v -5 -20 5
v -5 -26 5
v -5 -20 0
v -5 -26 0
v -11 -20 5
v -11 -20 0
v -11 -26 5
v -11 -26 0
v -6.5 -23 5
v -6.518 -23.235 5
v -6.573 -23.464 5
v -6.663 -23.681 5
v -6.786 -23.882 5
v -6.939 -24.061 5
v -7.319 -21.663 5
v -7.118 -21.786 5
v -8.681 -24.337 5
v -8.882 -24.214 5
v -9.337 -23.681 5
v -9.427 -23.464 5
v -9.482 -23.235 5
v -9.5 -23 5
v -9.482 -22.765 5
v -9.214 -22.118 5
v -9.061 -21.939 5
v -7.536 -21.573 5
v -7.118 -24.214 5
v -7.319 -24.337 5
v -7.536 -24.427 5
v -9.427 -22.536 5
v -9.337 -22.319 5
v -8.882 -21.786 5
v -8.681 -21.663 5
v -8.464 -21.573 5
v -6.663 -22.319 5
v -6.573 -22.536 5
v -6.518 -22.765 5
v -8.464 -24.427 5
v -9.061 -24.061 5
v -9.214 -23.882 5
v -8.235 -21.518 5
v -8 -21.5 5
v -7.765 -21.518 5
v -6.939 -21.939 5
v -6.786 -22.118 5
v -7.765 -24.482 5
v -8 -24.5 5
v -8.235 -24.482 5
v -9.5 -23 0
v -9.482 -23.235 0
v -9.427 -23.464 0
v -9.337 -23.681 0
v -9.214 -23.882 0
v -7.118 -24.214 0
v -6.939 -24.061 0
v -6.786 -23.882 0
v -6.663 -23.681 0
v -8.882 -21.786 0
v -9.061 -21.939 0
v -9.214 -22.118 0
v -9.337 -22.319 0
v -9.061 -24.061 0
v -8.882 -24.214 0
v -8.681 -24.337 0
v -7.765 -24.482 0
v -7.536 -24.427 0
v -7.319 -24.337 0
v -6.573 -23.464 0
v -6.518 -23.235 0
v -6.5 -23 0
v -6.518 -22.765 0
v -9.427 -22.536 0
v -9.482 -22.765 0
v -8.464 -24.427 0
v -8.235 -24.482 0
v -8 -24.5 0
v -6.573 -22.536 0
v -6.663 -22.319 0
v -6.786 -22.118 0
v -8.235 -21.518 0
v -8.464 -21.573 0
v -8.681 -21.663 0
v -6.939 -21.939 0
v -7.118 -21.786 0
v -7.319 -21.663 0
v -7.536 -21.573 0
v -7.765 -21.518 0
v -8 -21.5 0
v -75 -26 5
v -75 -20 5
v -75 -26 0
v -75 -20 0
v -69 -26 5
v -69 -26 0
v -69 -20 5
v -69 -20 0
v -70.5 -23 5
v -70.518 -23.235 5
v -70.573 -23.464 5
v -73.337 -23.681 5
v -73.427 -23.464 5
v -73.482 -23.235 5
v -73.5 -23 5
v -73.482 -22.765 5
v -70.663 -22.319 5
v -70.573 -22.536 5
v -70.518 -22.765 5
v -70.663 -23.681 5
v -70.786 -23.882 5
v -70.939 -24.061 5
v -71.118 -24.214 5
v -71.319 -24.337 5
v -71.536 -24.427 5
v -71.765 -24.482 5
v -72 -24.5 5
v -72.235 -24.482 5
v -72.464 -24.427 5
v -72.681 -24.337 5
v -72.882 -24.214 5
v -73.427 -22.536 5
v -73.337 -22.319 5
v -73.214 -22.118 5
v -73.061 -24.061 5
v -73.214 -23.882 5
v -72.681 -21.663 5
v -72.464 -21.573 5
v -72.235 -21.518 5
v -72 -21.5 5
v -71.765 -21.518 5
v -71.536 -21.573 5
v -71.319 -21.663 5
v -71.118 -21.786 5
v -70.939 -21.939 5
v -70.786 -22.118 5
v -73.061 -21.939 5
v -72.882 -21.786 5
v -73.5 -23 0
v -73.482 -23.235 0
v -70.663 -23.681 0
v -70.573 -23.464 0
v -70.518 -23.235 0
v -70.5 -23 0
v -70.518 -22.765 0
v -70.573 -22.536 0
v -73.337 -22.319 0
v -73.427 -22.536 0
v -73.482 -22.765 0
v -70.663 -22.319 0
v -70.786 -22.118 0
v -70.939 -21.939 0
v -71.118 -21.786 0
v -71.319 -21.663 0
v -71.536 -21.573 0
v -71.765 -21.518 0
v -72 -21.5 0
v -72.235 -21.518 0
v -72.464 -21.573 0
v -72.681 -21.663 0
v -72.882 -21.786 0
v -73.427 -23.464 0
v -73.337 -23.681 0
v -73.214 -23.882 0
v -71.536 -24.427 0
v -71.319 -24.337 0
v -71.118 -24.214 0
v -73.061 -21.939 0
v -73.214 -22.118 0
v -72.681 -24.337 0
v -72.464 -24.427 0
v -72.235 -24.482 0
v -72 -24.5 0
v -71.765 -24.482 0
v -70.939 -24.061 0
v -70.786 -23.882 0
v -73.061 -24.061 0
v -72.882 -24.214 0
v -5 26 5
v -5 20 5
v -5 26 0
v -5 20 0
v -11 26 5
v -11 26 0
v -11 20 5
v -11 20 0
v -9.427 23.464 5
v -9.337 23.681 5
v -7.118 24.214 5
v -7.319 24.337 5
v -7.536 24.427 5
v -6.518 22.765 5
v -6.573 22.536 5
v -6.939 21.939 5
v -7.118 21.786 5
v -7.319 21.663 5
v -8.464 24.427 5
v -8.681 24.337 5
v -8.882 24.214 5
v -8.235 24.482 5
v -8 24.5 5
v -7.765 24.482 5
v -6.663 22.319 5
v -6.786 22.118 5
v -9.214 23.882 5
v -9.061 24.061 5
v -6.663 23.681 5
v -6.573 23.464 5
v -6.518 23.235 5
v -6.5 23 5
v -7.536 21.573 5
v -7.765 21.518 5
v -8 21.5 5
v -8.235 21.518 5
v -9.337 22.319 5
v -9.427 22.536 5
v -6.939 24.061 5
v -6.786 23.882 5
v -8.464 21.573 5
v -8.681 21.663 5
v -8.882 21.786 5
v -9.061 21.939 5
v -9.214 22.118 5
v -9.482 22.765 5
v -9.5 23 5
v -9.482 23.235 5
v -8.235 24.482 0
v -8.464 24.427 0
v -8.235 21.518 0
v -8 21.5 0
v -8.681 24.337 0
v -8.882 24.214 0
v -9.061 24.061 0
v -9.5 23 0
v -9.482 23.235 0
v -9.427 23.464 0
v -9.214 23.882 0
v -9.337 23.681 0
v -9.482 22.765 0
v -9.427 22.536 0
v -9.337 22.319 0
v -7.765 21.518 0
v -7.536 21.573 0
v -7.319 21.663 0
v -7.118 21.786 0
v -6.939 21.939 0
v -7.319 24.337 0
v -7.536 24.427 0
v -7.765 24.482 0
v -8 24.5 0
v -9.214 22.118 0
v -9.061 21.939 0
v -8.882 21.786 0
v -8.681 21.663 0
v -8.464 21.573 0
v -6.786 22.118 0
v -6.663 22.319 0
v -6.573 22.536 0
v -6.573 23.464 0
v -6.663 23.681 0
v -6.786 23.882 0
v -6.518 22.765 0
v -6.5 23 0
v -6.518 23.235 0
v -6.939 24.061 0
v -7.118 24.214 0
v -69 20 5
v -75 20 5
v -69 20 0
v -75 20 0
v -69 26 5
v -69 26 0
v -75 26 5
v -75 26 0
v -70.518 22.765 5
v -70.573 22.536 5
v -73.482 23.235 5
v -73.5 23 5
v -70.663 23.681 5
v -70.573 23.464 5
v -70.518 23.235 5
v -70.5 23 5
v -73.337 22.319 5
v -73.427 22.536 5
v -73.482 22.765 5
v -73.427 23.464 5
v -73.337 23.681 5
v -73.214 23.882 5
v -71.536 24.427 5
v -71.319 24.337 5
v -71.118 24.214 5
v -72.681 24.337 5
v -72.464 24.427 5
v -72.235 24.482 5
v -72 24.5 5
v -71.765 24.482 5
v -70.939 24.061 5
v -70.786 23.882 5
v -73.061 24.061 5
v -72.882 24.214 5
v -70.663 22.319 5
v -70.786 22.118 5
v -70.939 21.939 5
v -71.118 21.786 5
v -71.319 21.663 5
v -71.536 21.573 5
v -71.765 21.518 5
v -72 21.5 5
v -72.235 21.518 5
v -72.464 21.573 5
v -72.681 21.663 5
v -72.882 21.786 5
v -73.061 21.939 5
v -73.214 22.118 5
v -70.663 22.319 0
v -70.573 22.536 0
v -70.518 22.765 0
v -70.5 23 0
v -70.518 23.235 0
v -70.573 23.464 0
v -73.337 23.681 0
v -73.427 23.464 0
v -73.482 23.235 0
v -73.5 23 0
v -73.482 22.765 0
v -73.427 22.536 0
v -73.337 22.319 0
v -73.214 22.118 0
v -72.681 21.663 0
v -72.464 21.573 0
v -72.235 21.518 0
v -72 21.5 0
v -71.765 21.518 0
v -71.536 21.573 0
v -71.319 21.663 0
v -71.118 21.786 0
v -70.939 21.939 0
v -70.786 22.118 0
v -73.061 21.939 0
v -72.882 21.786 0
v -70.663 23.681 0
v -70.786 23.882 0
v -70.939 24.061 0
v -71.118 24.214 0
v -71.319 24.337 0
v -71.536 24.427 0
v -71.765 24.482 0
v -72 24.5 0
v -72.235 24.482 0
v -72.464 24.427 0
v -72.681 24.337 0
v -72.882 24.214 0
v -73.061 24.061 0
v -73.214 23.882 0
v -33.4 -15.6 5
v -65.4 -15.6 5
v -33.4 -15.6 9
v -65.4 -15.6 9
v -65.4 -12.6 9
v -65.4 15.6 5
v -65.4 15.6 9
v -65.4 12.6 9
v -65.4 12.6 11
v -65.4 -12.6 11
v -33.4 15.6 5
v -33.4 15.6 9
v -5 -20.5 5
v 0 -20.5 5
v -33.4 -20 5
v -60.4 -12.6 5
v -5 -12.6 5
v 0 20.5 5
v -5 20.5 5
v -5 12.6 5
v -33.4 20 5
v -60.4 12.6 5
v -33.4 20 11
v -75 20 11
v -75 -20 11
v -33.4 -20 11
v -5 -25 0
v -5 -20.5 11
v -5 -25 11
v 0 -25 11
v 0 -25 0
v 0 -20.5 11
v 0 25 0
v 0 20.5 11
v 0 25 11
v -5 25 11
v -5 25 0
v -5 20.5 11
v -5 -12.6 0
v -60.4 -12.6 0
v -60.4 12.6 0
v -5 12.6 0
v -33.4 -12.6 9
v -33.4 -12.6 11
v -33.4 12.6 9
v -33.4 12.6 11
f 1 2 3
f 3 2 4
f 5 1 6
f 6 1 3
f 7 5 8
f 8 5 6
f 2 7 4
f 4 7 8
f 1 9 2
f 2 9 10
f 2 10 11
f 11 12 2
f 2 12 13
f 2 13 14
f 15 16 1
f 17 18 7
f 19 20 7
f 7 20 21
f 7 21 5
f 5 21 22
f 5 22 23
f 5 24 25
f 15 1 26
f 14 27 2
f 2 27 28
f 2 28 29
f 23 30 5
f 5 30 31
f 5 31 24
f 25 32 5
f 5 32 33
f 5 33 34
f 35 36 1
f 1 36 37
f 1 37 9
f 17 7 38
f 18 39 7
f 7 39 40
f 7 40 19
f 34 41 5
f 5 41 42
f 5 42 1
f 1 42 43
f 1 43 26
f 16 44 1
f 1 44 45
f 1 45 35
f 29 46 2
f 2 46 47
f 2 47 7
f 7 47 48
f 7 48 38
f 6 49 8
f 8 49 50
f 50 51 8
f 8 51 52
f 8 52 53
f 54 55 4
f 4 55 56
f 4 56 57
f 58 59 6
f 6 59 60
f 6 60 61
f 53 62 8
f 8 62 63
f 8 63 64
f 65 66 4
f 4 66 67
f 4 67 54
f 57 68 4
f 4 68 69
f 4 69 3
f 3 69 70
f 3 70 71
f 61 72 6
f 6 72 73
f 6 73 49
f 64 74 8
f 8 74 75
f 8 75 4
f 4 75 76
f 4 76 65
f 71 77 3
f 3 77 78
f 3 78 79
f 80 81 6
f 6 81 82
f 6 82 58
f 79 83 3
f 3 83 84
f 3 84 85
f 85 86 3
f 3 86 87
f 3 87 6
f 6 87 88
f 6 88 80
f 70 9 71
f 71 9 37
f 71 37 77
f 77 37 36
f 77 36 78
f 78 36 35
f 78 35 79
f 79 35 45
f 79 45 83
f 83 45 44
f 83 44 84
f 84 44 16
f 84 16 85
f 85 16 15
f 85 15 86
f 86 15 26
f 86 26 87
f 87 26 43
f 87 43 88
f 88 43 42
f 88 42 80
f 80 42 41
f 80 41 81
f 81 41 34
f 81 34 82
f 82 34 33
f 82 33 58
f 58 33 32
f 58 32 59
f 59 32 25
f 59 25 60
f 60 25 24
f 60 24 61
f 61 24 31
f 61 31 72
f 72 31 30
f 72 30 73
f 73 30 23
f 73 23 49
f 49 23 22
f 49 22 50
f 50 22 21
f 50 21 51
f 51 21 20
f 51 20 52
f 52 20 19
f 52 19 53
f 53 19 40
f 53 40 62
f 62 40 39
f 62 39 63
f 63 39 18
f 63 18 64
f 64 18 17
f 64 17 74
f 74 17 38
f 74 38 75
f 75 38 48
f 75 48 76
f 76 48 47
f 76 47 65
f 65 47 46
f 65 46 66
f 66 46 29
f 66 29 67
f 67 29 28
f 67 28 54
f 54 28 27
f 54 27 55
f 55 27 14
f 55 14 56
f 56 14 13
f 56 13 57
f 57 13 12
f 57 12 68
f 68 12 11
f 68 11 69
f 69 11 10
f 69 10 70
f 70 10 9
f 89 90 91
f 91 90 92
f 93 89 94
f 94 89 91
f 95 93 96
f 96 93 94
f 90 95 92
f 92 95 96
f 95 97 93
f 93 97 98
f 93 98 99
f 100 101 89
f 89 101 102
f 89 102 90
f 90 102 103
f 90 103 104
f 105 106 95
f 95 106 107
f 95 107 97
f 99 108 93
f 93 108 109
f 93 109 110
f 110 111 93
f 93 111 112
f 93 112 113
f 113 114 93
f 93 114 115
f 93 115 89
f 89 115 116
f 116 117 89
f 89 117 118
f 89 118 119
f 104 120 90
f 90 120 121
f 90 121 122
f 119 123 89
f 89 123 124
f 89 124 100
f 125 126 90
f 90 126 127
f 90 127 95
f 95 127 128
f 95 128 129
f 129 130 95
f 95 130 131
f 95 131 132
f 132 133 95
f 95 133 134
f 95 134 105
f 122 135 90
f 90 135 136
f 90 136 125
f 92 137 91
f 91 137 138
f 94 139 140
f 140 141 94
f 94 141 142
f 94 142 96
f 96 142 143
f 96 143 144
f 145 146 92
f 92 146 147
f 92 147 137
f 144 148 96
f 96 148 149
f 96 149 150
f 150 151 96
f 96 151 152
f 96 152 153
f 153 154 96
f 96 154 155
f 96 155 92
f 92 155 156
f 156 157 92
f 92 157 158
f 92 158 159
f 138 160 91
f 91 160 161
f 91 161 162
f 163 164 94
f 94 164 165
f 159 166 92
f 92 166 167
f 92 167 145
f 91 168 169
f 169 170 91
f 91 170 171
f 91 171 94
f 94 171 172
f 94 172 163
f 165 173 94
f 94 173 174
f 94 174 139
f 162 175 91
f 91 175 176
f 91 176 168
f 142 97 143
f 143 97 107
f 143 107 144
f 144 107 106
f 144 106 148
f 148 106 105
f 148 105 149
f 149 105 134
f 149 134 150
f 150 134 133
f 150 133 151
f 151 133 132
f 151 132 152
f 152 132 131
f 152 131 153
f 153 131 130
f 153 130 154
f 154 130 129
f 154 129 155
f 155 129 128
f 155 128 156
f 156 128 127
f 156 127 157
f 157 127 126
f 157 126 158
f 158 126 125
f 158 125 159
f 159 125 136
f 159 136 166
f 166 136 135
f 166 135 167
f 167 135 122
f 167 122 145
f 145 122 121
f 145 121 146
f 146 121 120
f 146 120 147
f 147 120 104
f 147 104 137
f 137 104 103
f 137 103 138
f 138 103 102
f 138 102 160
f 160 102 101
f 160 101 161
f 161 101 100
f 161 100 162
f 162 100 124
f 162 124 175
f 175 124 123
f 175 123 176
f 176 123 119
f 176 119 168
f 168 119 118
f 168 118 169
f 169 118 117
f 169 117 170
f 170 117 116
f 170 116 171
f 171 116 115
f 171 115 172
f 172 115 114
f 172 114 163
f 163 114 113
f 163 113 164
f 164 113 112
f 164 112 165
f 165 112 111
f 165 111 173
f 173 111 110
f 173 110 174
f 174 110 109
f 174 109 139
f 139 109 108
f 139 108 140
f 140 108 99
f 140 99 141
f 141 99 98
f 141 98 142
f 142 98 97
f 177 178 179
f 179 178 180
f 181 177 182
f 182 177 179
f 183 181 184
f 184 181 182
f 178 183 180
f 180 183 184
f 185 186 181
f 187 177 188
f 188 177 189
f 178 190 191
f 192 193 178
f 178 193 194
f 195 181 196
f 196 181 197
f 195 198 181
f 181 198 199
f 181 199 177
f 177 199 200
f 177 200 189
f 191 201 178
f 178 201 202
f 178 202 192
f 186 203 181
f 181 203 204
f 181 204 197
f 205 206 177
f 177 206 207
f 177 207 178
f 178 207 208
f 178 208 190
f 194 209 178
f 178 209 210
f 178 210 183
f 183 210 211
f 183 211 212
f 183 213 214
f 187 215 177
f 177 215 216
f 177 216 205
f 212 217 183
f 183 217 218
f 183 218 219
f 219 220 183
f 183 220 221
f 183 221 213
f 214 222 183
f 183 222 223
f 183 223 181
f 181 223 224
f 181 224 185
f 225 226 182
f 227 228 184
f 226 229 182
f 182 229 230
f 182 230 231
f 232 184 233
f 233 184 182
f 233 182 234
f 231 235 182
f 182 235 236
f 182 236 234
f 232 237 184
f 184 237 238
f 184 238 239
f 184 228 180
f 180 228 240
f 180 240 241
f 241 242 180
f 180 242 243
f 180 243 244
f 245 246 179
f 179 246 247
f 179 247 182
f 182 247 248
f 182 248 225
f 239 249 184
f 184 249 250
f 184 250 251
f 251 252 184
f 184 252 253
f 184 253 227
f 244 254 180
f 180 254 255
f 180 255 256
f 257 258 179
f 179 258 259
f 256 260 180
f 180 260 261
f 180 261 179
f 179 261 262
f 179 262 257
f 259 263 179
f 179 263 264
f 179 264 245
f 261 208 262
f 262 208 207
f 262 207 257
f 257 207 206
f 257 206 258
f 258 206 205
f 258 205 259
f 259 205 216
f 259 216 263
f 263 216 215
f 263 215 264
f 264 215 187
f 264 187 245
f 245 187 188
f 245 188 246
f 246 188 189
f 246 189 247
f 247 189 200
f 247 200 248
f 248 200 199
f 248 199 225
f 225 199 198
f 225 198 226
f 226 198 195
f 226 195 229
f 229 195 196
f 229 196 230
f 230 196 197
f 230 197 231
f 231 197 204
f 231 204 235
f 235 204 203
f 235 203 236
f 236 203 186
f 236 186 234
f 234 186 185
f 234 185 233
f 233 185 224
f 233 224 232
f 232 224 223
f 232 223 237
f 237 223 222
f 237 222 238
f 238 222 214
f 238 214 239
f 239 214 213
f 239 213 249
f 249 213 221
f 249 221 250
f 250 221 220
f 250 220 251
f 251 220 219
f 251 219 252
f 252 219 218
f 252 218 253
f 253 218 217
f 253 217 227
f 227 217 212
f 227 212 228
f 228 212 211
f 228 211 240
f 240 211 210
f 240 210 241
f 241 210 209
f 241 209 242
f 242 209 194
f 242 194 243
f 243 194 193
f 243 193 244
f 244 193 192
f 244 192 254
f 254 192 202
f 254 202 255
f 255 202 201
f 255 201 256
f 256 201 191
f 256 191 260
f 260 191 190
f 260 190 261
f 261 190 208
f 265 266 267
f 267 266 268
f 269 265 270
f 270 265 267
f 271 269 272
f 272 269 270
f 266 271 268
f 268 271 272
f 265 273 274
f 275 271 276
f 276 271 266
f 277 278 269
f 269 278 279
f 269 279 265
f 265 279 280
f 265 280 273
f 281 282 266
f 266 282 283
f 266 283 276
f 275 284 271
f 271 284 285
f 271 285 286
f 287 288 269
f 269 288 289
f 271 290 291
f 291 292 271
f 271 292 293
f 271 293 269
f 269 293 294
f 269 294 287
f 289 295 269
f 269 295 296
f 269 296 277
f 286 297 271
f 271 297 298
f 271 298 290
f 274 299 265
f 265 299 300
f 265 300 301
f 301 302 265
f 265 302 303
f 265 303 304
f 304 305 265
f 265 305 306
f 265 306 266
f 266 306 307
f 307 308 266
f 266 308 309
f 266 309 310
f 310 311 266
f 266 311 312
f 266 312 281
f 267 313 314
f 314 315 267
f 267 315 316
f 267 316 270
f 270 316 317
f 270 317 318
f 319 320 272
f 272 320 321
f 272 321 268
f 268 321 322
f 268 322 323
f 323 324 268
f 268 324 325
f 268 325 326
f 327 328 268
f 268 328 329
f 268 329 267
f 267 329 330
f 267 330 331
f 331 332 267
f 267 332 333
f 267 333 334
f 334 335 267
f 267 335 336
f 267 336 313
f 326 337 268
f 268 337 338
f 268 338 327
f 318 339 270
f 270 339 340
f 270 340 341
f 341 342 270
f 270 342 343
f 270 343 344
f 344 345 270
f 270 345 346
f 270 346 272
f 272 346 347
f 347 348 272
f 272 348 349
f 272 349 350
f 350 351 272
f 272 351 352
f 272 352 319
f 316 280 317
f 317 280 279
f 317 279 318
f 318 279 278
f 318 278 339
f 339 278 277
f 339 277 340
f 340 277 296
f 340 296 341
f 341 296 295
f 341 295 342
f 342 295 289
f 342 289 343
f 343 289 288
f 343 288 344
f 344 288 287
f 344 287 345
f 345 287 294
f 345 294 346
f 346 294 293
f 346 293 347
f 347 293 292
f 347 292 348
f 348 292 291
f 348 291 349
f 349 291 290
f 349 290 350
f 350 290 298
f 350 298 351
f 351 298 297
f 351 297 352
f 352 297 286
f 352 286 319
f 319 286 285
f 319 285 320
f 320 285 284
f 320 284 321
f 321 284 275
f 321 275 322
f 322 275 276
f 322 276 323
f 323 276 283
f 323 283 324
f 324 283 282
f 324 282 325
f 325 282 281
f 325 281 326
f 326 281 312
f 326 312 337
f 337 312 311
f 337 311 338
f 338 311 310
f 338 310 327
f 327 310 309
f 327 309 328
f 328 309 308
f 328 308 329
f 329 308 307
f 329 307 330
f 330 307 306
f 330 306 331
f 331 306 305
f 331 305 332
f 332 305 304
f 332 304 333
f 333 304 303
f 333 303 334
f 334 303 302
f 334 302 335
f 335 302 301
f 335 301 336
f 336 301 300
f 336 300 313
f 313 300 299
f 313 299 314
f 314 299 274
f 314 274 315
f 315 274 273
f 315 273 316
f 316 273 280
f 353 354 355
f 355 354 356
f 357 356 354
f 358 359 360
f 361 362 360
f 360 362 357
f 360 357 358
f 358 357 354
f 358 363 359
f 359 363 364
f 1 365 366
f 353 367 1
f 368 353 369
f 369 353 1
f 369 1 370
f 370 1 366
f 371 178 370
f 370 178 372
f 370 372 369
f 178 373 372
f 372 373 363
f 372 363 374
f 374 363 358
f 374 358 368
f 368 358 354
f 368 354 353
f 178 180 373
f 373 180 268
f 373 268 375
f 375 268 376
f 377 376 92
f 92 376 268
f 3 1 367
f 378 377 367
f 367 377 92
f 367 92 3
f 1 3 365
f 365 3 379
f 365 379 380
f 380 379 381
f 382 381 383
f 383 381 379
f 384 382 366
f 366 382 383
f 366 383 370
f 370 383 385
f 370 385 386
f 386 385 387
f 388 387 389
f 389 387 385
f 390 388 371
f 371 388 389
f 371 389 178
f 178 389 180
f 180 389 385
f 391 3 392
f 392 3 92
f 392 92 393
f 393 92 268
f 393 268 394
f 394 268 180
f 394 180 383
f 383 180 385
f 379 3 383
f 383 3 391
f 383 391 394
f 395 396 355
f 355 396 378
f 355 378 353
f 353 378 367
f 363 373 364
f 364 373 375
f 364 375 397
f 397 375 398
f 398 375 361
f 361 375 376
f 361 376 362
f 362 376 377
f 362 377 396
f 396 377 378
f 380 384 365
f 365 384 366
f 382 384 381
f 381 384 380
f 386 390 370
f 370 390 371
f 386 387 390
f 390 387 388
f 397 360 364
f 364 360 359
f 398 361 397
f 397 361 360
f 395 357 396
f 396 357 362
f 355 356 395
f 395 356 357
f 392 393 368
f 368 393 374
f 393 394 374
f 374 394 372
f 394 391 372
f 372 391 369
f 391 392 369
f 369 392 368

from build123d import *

# Parameters (mm, degrees)
BOSS_EXTRUDE1_DEPTH   = 5
SKETCH4_W             = 5
SKETCH4_H             = 4.5
BOSS_EXTRUDE2_DEPTH   = 6
SKETCH5_W             = 3
SKETCH5_H             = 2
BOSS_EXTRUDE3_DEPTH   = 32
SKETCH6_W             = 6
SKETCH6_H             = 6
BOSS_EXTRUDE4_DEPTH   = 5
BOSS_EXTRUDE4_2_DEPTH = 5
BOSS_EXTRUDE4_3_DEPTH = 5
BOSS_EXTRUDE4_4_DEPTH = 5
SKETCH7_R             = 1.5
CUT_EXTRUDE1_DEPTH    = 6
SKETCH8_W             = 55.4
SKETCH8_H             = 25.2
CUT_EXTRUDE2_DEPTH    = 6


with BuildPart() as part:
    # Sketch1 → Boss-Extrude1 (new body)
    with BuildSketch(Plane(origin=(0, 0, 0), x_dir=(0, 1, 0), z_dir=(0, 0, 1))):
        Polygon((-20, 5), (-20, 75), (20, 75), (20, 5), (25, 5), (25, 0), (-25, 0), (-25, 5), align=None)
    extrude(amount=BOSS_EXTRUDE1_DEPTH)

    # Sketch4 → Boss-Extrude2 (add)
    with BuildSketch(Plane.XY.offset(5)):
        Polygon((-75, 20), (-75, -20), (-33.4, -20), (-33.4, -15.6), (-65.4, -15.6), (-65.4, 15.6), (-33.4, 15.6), (-33.4, 20), align=None)
        with Locations((-2.5, 22.75)):
            Rectangle(SKETCH4_W, SKETCH4_H)
        with Locations((-2.5, -22.75)):
            Rectangle(SKETCH4_W, SKETCH4_H)
    extrude(amount=BOSS_EXTRUDE2_DEPTH)

    # Sketch5 → Boss-Extrude3 (add)
    with BuildSketch(Plane.YZ.offset(-65.4)):
        with Locations((-14.1, 10)):
            Rectangle(SKETCH5_W, SKETCH5_H)
        with Locations((14.1, 10)):
            Rectangle(SKETCH5_W, SKETCH5_H)
    extrude(amount=BOSS_EXTRUDE3_DEPTH)

    # Sketch8 → Cut-Extrude2 (cut, through all)
    with BuildSketch(Plane.XY.offset(5)):
        with Locations((-32.7, 0)):
            Rectangle(SKETCH8_W, SKETCH8_H)
    extrude(amount=-CUT_EXTRUDE2_DEPTH, mode=Mode.SUBTRACT)


with BuildPart() as body_2:
    # Sketch6 → Boss-Extrude4 (new body)
    with BuildSketch(Plane(origin=(0, 0, 0), x_dir=(1, 0, 0), z_dir=(0, 0, -1))):
        with Locations((-8, 23)):
            Rectangle(SKETCH6_W, SKETCH6_H)
    extrude(amount=-BOSS_EXTRUDE4_DEPTH)


with BuildPart() as body_3:
    # Sketch6 → Boss-Extrude4 2 (new body)
    with BuildSketch(Plane(origin=(0, 0, 0), x_dir=(1, 0, 0), z_dir=(0, 0, -1))):
        with Locations((-72, 23)):
            Rectangle(SKETCH6_W, SKETCH6_H)
    extrude(amount=-BOSS_EXTRUDE4_2_DEPTH)


with BuildPart() as body_4:
    # Sketch6 → Boss-Extrude4 3 (new body)
    with BuildSketch(Plane(origin=(0, 0, 0), x_dir=(1, 0, 0), z_dir=(0, 0, -1))):
        with Locations((-8, -23)):
            Rectangle(SKETCH6_W, SKETCH6_H)
    extrude(amount=-BOSS_EXTRUDE4_3_DEPTH)


with BuildPart() as body_5:
    # Sketch6 → Boss-Extrude4 4 (new body)
    with BuildSketch(Plane(origin=(0, 0, 0), x_dir=(1, 0, 0), z_dir=(0, 0, -1))):
        with Locations((-72, -23)):
            Rectangle(SKETCH6_W, SKETCH6_H)
    extrude(amount=-BOSS_EXTRUDE4_4_DEPTH)


with BuildPart() as cut_extrude1_tool:
    # Sketch7 → Cut-Extrude1 (new body, through all)
    with BuildSketch(Plane.XY.offset(5)):
        with Locations((-8, -23)):
            Circle(SKETCH7_R)
        with Locations((-72, -23)):
            Circle(SKETCH7_R)
        with Locations((-8, 23)):
            Circle(SKETCH7_R)
        with Locations((-72, 23)):
            Circle(SKETCH7_R)
    extrude(amount=-CUT_EXTRUDE1_DEPTH)


with BuildPart() as body_2_1:
    add(body_2.part)

    # Cut-Extrude1: cut by cut_extrude1_tool
    add(cut_extrude1_tool.part, mode=Mode.SUBTRACT)


with BuildPart() as body_3_1:
    add(body_3.part)

    # Cut-Extrude1: cut by cut_extrude1_tool
    add(cut_extrude1_tool.part, mode=Mode.SUBTRACT)


with BuildPart() as body_4_1:
    add(body_4.part)

    # Cut-Extrude1: cut by cut_extrude1_tool
    add(cut_extrude1_tool.part, mode=Mode.SUBTRACT)


with BuildPart() as body_5_1:
    add(body_5.part)

    # Cut-Extrude1: cut by cut_extrude1_tool
    add(cut_extrude1_tool.part, mode=Mode.SUBTRACT)


solid = Compound([part.part, body_2_1.part, body_3_1.part, body_4_1.part, body_5_1.part])
